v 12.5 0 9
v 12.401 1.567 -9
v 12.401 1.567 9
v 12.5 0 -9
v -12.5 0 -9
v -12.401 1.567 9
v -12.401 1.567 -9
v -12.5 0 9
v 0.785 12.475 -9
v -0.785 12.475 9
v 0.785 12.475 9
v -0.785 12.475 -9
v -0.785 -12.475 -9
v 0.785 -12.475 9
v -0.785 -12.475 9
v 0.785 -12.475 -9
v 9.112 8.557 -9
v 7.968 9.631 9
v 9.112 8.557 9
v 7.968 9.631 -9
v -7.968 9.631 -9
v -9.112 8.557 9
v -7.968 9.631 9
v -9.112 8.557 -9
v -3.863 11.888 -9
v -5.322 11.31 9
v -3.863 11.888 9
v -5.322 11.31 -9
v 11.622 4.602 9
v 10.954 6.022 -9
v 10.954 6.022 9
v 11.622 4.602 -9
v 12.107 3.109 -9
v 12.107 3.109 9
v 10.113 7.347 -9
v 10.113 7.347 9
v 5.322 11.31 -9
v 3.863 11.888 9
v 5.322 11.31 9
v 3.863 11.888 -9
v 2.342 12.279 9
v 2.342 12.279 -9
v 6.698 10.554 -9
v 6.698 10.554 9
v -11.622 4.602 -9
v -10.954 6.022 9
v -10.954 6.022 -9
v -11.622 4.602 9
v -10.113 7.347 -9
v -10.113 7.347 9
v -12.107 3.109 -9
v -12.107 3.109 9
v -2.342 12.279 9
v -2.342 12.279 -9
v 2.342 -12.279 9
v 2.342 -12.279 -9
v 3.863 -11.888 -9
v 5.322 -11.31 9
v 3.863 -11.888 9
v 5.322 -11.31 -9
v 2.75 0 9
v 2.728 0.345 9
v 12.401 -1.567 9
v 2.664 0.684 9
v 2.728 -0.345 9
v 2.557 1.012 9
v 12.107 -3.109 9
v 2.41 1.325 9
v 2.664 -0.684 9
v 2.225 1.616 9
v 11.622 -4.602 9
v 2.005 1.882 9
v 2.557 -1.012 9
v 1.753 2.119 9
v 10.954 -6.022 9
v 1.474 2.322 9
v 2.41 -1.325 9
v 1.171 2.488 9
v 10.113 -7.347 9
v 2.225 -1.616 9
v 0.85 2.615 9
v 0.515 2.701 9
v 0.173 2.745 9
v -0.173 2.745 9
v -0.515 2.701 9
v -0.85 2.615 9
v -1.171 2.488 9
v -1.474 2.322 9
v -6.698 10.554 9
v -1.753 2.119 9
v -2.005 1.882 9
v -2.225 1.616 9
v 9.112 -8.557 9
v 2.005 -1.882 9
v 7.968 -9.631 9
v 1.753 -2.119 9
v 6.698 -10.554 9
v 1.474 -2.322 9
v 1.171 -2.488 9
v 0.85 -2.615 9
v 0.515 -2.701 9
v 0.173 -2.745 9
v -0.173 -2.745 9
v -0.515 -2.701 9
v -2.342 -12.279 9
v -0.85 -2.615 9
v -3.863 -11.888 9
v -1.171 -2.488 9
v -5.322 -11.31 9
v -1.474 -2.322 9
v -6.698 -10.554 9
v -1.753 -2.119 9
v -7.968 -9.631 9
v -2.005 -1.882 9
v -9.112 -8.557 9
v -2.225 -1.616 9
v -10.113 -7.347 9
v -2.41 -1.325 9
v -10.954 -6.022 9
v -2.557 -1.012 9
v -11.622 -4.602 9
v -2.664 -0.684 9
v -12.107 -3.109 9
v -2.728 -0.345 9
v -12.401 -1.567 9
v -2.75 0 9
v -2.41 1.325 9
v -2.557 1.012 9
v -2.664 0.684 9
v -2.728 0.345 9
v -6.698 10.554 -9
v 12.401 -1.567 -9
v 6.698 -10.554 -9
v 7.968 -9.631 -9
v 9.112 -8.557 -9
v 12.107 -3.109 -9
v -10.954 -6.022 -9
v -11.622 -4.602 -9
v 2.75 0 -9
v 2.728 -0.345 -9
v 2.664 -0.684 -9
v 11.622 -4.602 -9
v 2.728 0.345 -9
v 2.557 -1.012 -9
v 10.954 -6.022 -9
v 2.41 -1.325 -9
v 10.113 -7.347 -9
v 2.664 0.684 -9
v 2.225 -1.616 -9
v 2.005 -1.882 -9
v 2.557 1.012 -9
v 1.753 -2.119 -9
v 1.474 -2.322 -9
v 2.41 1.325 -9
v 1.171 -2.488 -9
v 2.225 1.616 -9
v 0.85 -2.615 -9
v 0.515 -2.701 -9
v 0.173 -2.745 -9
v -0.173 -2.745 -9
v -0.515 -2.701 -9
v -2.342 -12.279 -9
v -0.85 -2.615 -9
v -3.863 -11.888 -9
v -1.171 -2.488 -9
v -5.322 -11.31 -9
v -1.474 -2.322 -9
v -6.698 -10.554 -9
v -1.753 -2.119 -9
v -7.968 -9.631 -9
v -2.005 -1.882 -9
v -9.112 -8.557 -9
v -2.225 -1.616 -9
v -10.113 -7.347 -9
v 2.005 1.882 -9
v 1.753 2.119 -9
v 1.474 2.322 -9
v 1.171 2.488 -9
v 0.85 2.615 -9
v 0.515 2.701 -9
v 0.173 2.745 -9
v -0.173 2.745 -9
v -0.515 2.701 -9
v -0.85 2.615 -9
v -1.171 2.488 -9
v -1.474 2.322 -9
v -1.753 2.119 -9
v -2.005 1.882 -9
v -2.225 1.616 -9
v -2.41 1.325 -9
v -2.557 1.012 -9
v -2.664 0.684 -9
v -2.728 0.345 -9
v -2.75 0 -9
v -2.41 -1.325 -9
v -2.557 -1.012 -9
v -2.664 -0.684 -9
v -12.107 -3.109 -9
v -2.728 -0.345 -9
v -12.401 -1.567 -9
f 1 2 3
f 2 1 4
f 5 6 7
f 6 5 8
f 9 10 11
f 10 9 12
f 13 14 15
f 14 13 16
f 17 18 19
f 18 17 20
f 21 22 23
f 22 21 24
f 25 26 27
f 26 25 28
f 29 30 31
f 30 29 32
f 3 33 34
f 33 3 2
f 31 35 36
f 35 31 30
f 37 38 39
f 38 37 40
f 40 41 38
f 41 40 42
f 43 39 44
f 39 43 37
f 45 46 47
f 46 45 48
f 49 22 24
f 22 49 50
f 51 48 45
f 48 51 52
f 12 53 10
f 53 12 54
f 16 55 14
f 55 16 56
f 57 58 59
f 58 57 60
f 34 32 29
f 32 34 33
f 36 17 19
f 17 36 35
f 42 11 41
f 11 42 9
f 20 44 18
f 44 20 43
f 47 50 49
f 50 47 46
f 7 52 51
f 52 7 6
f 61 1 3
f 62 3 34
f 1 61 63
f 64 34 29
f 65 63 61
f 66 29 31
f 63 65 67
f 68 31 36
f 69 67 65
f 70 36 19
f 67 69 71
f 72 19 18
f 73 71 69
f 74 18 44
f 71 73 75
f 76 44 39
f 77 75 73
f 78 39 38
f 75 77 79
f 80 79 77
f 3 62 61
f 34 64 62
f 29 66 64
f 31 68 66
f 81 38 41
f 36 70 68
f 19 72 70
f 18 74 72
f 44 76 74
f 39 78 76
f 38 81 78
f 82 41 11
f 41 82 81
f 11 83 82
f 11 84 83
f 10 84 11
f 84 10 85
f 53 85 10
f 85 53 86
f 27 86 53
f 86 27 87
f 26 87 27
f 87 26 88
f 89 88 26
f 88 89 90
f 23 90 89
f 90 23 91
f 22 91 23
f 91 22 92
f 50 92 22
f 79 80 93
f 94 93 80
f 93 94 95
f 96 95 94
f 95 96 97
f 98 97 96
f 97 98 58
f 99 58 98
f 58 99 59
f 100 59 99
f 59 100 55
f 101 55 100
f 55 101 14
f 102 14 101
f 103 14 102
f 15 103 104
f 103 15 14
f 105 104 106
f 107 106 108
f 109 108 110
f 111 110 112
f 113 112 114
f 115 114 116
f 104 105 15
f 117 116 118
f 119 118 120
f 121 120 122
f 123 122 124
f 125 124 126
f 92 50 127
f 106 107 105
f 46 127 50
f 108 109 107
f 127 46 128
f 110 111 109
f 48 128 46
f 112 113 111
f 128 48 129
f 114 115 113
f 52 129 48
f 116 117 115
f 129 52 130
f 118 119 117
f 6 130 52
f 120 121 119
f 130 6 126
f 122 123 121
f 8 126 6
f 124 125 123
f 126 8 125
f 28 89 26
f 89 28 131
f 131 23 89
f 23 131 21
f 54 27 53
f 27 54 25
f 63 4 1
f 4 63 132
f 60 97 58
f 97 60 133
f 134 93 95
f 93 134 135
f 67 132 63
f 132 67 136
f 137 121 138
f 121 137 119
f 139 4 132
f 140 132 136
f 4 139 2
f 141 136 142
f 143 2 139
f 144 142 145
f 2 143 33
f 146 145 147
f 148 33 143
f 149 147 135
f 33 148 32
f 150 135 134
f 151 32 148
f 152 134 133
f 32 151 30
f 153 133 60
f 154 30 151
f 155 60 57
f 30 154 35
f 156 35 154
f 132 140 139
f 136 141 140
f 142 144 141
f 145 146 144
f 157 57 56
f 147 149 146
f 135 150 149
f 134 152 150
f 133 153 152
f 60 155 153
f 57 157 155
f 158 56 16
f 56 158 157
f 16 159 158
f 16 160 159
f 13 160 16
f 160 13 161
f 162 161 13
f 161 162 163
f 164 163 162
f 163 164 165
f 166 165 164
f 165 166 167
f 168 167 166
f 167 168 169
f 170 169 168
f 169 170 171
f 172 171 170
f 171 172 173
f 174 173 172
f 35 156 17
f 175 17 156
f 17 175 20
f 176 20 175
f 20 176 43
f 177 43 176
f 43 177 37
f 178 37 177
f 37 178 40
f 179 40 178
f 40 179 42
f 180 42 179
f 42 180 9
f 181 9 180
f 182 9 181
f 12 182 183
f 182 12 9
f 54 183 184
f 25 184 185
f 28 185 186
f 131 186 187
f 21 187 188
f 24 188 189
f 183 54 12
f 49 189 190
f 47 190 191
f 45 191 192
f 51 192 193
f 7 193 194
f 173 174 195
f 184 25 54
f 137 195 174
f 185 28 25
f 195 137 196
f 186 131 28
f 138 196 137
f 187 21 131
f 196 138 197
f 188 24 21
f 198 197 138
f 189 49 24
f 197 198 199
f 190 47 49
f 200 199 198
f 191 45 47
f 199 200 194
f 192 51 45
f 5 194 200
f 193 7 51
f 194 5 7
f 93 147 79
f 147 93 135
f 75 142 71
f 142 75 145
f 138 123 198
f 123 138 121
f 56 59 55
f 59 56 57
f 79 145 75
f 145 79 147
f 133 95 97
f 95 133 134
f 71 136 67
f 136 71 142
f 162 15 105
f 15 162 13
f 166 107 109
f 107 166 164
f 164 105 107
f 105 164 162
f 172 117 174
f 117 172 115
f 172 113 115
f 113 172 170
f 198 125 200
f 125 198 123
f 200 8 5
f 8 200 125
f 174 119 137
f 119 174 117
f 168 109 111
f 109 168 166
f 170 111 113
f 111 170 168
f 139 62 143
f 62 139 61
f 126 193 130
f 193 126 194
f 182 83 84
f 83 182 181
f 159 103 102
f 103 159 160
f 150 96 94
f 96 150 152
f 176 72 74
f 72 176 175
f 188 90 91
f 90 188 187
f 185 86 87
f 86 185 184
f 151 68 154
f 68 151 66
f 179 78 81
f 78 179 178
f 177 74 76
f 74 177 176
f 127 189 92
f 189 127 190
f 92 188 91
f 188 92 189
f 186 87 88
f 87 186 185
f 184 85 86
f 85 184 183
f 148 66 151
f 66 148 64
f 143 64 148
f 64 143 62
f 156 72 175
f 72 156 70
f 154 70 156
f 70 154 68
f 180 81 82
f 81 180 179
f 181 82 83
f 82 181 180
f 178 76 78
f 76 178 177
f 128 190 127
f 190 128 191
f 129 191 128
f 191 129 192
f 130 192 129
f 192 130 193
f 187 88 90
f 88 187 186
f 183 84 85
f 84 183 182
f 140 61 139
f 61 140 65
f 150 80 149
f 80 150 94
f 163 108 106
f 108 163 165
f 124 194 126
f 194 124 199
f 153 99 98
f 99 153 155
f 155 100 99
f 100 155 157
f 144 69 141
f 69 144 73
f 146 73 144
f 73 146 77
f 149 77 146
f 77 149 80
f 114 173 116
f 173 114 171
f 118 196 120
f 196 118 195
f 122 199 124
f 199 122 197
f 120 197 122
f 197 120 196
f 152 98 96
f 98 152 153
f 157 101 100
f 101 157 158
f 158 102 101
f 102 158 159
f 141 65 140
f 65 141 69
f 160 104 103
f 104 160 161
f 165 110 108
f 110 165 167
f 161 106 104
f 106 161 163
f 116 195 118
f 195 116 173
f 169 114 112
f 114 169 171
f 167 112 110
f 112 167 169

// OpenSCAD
$fn = 50;


difference() {
	union() {
		translate(v = [0, 0, -9.0000000000]) {
			cylinder(h = 18, r = 12.5000000000);
		}
	}
	union() {
		translate(v = [0, 0, -100.0000000000]) {
			cylinder(h = 200, r = 2.7500000000);
		}
	}
}
